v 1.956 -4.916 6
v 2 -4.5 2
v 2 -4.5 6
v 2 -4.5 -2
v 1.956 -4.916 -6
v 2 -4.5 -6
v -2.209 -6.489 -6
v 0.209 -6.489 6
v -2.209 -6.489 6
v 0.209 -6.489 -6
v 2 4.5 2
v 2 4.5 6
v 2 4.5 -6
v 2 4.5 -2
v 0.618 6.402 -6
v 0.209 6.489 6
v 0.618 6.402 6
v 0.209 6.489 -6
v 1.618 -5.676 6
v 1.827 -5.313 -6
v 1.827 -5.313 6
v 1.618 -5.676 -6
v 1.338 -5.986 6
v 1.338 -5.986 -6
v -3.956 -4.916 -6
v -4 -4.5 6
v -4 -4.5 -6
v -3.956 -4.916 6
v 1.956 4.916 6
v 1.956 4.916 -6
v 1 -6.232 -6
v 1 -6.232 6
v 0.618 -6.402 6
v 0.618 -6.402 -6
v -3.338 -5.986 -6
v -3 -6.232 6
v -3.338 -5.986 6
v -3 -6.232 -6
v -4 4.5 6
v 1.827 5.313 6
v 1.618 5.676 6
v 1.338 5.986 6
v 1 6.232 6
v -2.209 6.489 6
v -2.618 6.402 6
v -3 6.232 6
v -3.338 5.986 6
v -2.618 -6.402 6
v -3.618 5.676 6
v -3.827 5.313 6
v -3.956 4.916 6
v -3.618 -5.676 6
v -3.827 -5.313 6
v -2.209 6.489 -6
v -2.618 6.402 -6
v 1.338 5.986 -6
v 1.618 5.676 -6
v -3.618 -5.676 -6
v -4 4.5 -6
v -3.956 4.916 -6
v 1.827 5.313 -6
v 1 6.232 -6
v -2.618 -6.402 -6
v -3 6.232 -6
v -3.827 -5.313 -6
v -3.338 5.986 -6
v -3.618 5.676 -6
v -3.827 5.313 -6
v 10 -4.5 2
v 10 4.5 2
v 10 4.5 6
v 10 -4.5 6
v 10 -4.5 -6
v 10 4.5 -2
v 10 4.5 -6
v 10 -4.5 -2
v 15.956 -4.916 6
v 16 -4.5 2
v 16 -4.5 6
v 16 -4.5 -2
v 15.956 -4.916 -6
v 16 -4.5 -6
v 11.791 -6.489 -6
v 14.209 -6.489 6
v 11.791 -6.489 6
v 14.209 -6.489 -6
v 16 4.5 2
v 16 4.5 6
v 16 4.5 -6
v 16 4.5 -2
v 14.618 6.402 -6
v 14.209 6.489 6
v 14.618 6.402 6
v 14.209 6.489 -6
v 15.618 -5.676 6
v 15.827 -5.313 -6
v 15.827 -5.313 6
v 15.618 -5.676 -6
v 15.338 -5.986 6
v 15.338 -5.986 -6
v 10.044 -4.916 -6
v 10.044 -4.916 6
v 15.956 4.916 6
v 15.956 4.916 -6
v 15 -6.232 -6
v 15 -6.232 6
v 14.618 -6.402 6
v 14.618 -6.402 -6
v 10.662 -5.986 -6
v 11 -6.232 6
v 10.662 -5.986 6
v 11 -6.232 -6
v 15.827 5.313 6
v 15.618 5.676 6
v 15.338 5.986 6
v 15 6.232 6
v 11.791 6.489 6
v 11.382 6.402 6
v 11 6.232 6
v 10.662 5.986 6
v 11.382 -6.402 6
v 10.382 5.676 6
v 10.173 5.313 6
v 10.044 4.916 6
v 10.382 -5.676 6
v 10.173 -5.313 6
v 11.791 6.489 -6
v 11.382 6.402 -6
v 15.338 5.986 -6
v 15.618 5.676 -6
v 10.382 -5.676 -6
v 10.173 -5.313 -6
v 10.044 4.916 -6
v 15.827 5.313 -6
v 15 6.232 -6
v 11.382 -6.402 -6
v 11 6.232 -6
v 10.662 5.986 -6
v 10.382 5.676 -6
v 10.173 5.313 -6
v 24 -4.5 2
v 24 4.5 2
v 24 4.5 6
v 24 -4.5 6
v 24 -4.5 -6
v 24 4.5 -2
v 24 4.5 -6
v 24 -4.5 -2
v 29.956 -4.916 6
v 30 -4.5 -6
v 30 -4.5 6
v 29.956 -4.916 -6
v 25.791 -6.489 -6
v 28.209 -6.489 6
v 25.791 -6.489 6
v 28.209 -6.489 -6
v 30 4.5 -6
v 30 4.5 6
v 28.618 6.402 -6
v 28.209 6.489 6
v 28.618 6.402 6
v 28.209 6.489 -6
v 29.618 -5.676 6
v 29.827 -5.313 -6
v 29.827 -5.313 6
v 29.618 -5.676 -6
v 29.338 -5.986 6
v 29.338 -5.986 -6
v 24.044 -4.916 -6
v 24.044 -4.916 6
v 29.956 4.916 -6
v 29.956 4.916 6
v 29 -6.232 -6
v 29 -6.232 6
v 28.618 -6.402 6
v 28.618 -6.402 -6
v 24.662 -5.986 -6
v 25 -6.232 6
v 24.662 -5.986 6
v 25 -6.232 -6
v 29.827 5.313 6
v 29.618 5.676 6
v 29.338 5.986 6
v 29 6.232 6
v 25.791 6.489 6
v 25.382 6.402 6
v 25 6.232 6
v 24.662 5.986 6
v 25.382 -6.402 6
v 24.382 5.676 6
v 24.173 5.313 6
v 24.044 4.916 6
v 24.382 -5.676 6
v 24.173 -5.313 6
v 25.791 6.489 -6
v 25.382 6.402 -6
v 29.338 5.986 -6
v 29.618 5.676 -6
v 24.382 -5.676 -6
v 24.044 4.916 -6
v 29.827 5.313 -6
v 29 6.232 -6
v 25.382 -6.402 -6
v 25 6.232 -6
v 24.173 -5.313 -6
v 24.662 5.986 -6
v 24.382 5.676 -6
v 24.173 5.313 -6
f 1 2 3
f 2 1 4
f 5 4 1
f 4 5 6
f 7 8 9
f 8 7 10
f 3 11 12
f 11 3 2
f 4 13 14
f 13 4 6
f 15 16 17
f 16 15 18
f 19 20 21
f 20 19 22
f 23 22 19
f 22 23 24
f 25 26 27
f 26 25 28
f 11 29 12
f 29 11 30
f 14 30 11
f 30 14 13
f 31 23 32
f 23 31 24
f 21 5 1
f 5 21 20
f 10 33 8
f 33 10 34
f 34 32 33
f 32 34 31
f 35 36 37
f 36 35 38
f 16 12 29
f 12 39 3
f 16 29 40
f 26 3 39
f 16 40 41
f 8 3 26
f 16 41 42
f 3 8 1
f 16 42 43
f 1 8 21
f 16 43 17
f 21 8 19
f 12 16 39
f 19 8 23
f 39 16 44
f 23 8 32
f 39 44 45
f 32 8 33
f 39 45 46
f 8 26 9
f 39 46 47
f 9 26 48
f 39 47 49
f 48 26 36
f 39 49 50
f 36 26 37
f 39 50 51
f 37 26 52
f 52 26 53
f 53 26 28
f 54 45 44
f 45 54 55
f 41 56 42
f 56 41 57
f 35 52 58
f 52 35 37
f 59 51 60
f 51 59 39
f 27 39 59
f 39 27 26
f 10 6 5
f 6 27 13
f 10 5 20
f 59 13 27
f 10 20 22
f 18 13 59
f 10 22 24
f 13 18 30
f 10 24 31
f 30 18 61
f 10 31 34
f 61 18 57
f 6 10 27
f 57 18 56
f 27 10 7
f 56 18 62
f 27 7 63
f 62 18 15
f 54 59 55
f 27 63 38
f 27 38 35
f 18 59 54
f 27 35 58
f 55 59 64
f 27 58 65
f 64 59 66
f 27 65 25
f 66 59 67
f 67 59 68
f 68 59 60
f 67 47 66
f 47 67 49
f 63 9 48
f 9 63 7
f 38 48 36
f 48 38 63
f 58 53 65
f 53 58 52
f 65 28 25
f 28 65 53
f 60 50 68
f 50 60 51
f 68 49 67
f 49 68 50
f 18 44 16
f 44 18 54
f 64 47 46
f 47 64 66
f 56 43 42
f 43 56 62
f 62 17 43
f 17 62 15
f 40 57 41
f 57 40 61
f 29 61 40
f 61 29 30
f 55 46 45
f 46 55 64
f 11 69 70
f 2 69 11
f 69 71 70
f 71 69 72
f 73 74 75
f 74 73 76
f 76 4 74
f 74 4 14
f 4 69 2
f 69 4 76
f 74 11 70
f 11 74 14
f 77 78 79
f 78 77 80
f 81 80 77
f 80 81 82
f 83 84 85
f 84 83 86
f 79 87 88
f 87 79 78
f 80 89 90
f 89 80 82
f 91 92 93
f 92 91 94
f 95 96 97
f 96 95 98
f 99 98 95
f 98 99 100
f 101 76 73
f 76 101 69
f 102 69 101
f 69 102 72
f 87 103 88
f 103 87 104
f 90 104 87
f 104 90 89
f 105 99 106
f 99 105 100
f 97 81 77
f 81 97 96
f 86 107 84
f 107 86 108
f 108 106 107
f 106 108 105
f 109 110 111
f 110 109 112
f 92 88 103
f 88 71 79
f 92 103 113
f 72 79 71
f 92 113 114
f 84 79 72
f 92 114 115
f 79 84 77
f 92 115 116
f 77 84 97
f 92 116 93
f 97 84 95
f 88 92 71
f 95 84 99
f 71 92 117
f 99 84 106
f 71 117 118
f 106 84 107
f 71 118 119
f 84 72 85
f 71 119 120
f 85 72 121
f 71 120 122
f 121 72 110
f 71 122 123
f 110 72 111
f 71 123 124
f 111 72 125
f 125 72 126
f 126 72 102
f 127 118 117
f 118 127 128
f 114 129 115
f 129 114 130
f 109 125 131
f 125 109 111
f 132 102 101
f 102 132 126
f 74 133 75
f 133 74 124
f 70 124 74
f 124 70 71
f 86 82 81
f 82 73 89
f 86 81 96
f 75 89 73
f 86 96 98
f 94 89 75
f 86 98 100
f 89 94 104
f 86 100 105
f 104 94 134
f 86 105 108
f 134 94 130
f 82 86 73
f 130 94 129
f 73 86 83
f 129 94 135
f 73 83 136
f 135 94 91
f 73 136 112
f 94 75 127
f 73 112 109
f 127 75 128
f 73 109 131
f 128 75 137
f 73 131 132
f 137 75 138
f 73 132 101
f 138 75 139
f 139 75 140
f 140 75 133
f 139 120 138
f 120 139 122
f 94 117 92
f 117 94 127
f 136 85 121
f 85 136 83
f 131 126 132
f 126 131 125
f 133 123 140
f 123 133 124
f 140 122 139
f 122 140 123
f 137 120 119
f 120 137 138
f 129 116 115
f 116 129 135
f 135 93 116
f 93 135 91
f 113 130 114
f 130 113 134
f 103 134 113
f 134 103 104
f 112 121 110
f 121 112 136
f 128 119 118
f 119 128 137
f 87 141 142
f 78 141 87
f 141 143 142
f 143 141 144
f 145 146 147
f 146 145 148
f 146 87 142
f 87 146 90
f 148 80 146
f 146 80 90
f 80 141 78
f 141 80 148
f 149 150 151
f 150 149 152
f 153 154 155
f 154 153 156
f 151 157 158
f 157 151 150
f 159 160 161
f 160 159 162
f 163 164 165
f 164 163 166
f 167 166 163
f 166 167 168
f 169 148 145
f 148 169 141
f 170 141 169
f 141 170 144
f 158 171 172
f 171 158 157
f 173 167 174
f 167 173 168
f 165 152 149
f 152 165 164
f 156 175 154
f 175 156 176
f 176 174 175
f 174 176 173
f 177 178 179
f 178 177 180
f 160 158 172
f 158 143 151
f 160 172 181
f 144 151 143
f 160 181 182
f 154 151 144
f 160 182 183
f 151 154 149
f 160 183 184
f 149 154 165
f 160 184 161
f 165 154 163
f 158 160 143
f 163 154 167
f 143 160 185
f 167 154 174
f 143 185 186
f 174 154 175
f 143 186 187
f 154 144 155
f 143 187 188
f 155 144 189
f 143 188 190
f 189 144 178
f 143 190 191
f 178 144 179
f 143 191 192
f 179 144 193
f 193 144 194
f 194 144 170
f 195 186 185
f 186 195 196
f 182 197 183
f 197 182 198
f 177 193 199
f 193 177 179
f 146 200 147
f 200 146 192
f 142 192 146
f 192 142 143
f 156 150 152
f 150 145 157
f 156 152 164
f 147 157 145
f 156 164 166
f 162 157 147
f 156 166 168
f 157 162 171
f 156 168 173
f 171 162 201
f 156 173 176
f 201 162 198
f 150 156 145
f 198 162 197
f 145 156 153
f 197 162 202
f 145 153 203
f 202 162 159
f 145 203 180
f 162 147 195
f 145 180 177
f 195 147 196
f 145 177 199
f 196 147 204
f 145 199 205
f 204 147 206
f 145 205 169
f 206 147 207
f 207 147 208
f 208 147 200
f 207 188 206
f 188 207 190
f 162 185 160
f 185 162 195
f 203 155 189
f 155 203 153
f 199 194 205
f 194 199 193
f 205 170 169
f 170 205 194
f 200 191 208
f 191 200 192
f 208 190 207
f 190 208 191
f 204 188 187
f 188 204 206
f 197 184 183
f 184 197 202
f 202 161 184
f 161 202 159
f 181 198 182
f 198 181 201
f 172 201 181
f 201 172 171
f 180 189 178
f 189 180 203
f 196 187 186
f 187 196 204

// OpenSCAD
$fn=30;
height=12;
radius=2;
union(){
    hull(){
        translate([0,-4.5,0])cylinder(r=radius,h=height, center=true);
        translate([-2,4.5,0])cylinder(r=radius,h=height, center=true);
        translate([0,4.5,0])cylinder(r=radius,h=height, center=true);
        translate([-2,-4.5,0])cylinder(r=radius,h=height, center=true);
  }
  translate([6,0,0])cube([radius/0.25,radius+7,radius+2],center=true);
   translate([14,0,0]) hull(){
        translate([0,-4.5,0])cylinder(r=radius,h=height, center=true);
        translate([-2,4.5,0])cylinder(r=radius,h=height, center=true);
        translate([0,4.5,0])cylinder(r=radius,h=height, center=true);
        translate([-2,-4.5,0])cylinder(r=radius,h=height, center=true);
  }
   translate([20,0,0])cube([radius/0.25,radius+7,radius+2],center=true);
   translate([28,0,0]) hull(){
        translate([0,-4.5,0])cylinder(r=radius,h=height, center=true);
        translate([-2,4.5,0])cylinder(r=radius,h=height, center=true);
        translate([0,4.5,0])cylinder(r=radius,h=height, center=true);
        translate([-2,-4.5,0])cylinder(r=radius,h=height, center=true);
  }
}
